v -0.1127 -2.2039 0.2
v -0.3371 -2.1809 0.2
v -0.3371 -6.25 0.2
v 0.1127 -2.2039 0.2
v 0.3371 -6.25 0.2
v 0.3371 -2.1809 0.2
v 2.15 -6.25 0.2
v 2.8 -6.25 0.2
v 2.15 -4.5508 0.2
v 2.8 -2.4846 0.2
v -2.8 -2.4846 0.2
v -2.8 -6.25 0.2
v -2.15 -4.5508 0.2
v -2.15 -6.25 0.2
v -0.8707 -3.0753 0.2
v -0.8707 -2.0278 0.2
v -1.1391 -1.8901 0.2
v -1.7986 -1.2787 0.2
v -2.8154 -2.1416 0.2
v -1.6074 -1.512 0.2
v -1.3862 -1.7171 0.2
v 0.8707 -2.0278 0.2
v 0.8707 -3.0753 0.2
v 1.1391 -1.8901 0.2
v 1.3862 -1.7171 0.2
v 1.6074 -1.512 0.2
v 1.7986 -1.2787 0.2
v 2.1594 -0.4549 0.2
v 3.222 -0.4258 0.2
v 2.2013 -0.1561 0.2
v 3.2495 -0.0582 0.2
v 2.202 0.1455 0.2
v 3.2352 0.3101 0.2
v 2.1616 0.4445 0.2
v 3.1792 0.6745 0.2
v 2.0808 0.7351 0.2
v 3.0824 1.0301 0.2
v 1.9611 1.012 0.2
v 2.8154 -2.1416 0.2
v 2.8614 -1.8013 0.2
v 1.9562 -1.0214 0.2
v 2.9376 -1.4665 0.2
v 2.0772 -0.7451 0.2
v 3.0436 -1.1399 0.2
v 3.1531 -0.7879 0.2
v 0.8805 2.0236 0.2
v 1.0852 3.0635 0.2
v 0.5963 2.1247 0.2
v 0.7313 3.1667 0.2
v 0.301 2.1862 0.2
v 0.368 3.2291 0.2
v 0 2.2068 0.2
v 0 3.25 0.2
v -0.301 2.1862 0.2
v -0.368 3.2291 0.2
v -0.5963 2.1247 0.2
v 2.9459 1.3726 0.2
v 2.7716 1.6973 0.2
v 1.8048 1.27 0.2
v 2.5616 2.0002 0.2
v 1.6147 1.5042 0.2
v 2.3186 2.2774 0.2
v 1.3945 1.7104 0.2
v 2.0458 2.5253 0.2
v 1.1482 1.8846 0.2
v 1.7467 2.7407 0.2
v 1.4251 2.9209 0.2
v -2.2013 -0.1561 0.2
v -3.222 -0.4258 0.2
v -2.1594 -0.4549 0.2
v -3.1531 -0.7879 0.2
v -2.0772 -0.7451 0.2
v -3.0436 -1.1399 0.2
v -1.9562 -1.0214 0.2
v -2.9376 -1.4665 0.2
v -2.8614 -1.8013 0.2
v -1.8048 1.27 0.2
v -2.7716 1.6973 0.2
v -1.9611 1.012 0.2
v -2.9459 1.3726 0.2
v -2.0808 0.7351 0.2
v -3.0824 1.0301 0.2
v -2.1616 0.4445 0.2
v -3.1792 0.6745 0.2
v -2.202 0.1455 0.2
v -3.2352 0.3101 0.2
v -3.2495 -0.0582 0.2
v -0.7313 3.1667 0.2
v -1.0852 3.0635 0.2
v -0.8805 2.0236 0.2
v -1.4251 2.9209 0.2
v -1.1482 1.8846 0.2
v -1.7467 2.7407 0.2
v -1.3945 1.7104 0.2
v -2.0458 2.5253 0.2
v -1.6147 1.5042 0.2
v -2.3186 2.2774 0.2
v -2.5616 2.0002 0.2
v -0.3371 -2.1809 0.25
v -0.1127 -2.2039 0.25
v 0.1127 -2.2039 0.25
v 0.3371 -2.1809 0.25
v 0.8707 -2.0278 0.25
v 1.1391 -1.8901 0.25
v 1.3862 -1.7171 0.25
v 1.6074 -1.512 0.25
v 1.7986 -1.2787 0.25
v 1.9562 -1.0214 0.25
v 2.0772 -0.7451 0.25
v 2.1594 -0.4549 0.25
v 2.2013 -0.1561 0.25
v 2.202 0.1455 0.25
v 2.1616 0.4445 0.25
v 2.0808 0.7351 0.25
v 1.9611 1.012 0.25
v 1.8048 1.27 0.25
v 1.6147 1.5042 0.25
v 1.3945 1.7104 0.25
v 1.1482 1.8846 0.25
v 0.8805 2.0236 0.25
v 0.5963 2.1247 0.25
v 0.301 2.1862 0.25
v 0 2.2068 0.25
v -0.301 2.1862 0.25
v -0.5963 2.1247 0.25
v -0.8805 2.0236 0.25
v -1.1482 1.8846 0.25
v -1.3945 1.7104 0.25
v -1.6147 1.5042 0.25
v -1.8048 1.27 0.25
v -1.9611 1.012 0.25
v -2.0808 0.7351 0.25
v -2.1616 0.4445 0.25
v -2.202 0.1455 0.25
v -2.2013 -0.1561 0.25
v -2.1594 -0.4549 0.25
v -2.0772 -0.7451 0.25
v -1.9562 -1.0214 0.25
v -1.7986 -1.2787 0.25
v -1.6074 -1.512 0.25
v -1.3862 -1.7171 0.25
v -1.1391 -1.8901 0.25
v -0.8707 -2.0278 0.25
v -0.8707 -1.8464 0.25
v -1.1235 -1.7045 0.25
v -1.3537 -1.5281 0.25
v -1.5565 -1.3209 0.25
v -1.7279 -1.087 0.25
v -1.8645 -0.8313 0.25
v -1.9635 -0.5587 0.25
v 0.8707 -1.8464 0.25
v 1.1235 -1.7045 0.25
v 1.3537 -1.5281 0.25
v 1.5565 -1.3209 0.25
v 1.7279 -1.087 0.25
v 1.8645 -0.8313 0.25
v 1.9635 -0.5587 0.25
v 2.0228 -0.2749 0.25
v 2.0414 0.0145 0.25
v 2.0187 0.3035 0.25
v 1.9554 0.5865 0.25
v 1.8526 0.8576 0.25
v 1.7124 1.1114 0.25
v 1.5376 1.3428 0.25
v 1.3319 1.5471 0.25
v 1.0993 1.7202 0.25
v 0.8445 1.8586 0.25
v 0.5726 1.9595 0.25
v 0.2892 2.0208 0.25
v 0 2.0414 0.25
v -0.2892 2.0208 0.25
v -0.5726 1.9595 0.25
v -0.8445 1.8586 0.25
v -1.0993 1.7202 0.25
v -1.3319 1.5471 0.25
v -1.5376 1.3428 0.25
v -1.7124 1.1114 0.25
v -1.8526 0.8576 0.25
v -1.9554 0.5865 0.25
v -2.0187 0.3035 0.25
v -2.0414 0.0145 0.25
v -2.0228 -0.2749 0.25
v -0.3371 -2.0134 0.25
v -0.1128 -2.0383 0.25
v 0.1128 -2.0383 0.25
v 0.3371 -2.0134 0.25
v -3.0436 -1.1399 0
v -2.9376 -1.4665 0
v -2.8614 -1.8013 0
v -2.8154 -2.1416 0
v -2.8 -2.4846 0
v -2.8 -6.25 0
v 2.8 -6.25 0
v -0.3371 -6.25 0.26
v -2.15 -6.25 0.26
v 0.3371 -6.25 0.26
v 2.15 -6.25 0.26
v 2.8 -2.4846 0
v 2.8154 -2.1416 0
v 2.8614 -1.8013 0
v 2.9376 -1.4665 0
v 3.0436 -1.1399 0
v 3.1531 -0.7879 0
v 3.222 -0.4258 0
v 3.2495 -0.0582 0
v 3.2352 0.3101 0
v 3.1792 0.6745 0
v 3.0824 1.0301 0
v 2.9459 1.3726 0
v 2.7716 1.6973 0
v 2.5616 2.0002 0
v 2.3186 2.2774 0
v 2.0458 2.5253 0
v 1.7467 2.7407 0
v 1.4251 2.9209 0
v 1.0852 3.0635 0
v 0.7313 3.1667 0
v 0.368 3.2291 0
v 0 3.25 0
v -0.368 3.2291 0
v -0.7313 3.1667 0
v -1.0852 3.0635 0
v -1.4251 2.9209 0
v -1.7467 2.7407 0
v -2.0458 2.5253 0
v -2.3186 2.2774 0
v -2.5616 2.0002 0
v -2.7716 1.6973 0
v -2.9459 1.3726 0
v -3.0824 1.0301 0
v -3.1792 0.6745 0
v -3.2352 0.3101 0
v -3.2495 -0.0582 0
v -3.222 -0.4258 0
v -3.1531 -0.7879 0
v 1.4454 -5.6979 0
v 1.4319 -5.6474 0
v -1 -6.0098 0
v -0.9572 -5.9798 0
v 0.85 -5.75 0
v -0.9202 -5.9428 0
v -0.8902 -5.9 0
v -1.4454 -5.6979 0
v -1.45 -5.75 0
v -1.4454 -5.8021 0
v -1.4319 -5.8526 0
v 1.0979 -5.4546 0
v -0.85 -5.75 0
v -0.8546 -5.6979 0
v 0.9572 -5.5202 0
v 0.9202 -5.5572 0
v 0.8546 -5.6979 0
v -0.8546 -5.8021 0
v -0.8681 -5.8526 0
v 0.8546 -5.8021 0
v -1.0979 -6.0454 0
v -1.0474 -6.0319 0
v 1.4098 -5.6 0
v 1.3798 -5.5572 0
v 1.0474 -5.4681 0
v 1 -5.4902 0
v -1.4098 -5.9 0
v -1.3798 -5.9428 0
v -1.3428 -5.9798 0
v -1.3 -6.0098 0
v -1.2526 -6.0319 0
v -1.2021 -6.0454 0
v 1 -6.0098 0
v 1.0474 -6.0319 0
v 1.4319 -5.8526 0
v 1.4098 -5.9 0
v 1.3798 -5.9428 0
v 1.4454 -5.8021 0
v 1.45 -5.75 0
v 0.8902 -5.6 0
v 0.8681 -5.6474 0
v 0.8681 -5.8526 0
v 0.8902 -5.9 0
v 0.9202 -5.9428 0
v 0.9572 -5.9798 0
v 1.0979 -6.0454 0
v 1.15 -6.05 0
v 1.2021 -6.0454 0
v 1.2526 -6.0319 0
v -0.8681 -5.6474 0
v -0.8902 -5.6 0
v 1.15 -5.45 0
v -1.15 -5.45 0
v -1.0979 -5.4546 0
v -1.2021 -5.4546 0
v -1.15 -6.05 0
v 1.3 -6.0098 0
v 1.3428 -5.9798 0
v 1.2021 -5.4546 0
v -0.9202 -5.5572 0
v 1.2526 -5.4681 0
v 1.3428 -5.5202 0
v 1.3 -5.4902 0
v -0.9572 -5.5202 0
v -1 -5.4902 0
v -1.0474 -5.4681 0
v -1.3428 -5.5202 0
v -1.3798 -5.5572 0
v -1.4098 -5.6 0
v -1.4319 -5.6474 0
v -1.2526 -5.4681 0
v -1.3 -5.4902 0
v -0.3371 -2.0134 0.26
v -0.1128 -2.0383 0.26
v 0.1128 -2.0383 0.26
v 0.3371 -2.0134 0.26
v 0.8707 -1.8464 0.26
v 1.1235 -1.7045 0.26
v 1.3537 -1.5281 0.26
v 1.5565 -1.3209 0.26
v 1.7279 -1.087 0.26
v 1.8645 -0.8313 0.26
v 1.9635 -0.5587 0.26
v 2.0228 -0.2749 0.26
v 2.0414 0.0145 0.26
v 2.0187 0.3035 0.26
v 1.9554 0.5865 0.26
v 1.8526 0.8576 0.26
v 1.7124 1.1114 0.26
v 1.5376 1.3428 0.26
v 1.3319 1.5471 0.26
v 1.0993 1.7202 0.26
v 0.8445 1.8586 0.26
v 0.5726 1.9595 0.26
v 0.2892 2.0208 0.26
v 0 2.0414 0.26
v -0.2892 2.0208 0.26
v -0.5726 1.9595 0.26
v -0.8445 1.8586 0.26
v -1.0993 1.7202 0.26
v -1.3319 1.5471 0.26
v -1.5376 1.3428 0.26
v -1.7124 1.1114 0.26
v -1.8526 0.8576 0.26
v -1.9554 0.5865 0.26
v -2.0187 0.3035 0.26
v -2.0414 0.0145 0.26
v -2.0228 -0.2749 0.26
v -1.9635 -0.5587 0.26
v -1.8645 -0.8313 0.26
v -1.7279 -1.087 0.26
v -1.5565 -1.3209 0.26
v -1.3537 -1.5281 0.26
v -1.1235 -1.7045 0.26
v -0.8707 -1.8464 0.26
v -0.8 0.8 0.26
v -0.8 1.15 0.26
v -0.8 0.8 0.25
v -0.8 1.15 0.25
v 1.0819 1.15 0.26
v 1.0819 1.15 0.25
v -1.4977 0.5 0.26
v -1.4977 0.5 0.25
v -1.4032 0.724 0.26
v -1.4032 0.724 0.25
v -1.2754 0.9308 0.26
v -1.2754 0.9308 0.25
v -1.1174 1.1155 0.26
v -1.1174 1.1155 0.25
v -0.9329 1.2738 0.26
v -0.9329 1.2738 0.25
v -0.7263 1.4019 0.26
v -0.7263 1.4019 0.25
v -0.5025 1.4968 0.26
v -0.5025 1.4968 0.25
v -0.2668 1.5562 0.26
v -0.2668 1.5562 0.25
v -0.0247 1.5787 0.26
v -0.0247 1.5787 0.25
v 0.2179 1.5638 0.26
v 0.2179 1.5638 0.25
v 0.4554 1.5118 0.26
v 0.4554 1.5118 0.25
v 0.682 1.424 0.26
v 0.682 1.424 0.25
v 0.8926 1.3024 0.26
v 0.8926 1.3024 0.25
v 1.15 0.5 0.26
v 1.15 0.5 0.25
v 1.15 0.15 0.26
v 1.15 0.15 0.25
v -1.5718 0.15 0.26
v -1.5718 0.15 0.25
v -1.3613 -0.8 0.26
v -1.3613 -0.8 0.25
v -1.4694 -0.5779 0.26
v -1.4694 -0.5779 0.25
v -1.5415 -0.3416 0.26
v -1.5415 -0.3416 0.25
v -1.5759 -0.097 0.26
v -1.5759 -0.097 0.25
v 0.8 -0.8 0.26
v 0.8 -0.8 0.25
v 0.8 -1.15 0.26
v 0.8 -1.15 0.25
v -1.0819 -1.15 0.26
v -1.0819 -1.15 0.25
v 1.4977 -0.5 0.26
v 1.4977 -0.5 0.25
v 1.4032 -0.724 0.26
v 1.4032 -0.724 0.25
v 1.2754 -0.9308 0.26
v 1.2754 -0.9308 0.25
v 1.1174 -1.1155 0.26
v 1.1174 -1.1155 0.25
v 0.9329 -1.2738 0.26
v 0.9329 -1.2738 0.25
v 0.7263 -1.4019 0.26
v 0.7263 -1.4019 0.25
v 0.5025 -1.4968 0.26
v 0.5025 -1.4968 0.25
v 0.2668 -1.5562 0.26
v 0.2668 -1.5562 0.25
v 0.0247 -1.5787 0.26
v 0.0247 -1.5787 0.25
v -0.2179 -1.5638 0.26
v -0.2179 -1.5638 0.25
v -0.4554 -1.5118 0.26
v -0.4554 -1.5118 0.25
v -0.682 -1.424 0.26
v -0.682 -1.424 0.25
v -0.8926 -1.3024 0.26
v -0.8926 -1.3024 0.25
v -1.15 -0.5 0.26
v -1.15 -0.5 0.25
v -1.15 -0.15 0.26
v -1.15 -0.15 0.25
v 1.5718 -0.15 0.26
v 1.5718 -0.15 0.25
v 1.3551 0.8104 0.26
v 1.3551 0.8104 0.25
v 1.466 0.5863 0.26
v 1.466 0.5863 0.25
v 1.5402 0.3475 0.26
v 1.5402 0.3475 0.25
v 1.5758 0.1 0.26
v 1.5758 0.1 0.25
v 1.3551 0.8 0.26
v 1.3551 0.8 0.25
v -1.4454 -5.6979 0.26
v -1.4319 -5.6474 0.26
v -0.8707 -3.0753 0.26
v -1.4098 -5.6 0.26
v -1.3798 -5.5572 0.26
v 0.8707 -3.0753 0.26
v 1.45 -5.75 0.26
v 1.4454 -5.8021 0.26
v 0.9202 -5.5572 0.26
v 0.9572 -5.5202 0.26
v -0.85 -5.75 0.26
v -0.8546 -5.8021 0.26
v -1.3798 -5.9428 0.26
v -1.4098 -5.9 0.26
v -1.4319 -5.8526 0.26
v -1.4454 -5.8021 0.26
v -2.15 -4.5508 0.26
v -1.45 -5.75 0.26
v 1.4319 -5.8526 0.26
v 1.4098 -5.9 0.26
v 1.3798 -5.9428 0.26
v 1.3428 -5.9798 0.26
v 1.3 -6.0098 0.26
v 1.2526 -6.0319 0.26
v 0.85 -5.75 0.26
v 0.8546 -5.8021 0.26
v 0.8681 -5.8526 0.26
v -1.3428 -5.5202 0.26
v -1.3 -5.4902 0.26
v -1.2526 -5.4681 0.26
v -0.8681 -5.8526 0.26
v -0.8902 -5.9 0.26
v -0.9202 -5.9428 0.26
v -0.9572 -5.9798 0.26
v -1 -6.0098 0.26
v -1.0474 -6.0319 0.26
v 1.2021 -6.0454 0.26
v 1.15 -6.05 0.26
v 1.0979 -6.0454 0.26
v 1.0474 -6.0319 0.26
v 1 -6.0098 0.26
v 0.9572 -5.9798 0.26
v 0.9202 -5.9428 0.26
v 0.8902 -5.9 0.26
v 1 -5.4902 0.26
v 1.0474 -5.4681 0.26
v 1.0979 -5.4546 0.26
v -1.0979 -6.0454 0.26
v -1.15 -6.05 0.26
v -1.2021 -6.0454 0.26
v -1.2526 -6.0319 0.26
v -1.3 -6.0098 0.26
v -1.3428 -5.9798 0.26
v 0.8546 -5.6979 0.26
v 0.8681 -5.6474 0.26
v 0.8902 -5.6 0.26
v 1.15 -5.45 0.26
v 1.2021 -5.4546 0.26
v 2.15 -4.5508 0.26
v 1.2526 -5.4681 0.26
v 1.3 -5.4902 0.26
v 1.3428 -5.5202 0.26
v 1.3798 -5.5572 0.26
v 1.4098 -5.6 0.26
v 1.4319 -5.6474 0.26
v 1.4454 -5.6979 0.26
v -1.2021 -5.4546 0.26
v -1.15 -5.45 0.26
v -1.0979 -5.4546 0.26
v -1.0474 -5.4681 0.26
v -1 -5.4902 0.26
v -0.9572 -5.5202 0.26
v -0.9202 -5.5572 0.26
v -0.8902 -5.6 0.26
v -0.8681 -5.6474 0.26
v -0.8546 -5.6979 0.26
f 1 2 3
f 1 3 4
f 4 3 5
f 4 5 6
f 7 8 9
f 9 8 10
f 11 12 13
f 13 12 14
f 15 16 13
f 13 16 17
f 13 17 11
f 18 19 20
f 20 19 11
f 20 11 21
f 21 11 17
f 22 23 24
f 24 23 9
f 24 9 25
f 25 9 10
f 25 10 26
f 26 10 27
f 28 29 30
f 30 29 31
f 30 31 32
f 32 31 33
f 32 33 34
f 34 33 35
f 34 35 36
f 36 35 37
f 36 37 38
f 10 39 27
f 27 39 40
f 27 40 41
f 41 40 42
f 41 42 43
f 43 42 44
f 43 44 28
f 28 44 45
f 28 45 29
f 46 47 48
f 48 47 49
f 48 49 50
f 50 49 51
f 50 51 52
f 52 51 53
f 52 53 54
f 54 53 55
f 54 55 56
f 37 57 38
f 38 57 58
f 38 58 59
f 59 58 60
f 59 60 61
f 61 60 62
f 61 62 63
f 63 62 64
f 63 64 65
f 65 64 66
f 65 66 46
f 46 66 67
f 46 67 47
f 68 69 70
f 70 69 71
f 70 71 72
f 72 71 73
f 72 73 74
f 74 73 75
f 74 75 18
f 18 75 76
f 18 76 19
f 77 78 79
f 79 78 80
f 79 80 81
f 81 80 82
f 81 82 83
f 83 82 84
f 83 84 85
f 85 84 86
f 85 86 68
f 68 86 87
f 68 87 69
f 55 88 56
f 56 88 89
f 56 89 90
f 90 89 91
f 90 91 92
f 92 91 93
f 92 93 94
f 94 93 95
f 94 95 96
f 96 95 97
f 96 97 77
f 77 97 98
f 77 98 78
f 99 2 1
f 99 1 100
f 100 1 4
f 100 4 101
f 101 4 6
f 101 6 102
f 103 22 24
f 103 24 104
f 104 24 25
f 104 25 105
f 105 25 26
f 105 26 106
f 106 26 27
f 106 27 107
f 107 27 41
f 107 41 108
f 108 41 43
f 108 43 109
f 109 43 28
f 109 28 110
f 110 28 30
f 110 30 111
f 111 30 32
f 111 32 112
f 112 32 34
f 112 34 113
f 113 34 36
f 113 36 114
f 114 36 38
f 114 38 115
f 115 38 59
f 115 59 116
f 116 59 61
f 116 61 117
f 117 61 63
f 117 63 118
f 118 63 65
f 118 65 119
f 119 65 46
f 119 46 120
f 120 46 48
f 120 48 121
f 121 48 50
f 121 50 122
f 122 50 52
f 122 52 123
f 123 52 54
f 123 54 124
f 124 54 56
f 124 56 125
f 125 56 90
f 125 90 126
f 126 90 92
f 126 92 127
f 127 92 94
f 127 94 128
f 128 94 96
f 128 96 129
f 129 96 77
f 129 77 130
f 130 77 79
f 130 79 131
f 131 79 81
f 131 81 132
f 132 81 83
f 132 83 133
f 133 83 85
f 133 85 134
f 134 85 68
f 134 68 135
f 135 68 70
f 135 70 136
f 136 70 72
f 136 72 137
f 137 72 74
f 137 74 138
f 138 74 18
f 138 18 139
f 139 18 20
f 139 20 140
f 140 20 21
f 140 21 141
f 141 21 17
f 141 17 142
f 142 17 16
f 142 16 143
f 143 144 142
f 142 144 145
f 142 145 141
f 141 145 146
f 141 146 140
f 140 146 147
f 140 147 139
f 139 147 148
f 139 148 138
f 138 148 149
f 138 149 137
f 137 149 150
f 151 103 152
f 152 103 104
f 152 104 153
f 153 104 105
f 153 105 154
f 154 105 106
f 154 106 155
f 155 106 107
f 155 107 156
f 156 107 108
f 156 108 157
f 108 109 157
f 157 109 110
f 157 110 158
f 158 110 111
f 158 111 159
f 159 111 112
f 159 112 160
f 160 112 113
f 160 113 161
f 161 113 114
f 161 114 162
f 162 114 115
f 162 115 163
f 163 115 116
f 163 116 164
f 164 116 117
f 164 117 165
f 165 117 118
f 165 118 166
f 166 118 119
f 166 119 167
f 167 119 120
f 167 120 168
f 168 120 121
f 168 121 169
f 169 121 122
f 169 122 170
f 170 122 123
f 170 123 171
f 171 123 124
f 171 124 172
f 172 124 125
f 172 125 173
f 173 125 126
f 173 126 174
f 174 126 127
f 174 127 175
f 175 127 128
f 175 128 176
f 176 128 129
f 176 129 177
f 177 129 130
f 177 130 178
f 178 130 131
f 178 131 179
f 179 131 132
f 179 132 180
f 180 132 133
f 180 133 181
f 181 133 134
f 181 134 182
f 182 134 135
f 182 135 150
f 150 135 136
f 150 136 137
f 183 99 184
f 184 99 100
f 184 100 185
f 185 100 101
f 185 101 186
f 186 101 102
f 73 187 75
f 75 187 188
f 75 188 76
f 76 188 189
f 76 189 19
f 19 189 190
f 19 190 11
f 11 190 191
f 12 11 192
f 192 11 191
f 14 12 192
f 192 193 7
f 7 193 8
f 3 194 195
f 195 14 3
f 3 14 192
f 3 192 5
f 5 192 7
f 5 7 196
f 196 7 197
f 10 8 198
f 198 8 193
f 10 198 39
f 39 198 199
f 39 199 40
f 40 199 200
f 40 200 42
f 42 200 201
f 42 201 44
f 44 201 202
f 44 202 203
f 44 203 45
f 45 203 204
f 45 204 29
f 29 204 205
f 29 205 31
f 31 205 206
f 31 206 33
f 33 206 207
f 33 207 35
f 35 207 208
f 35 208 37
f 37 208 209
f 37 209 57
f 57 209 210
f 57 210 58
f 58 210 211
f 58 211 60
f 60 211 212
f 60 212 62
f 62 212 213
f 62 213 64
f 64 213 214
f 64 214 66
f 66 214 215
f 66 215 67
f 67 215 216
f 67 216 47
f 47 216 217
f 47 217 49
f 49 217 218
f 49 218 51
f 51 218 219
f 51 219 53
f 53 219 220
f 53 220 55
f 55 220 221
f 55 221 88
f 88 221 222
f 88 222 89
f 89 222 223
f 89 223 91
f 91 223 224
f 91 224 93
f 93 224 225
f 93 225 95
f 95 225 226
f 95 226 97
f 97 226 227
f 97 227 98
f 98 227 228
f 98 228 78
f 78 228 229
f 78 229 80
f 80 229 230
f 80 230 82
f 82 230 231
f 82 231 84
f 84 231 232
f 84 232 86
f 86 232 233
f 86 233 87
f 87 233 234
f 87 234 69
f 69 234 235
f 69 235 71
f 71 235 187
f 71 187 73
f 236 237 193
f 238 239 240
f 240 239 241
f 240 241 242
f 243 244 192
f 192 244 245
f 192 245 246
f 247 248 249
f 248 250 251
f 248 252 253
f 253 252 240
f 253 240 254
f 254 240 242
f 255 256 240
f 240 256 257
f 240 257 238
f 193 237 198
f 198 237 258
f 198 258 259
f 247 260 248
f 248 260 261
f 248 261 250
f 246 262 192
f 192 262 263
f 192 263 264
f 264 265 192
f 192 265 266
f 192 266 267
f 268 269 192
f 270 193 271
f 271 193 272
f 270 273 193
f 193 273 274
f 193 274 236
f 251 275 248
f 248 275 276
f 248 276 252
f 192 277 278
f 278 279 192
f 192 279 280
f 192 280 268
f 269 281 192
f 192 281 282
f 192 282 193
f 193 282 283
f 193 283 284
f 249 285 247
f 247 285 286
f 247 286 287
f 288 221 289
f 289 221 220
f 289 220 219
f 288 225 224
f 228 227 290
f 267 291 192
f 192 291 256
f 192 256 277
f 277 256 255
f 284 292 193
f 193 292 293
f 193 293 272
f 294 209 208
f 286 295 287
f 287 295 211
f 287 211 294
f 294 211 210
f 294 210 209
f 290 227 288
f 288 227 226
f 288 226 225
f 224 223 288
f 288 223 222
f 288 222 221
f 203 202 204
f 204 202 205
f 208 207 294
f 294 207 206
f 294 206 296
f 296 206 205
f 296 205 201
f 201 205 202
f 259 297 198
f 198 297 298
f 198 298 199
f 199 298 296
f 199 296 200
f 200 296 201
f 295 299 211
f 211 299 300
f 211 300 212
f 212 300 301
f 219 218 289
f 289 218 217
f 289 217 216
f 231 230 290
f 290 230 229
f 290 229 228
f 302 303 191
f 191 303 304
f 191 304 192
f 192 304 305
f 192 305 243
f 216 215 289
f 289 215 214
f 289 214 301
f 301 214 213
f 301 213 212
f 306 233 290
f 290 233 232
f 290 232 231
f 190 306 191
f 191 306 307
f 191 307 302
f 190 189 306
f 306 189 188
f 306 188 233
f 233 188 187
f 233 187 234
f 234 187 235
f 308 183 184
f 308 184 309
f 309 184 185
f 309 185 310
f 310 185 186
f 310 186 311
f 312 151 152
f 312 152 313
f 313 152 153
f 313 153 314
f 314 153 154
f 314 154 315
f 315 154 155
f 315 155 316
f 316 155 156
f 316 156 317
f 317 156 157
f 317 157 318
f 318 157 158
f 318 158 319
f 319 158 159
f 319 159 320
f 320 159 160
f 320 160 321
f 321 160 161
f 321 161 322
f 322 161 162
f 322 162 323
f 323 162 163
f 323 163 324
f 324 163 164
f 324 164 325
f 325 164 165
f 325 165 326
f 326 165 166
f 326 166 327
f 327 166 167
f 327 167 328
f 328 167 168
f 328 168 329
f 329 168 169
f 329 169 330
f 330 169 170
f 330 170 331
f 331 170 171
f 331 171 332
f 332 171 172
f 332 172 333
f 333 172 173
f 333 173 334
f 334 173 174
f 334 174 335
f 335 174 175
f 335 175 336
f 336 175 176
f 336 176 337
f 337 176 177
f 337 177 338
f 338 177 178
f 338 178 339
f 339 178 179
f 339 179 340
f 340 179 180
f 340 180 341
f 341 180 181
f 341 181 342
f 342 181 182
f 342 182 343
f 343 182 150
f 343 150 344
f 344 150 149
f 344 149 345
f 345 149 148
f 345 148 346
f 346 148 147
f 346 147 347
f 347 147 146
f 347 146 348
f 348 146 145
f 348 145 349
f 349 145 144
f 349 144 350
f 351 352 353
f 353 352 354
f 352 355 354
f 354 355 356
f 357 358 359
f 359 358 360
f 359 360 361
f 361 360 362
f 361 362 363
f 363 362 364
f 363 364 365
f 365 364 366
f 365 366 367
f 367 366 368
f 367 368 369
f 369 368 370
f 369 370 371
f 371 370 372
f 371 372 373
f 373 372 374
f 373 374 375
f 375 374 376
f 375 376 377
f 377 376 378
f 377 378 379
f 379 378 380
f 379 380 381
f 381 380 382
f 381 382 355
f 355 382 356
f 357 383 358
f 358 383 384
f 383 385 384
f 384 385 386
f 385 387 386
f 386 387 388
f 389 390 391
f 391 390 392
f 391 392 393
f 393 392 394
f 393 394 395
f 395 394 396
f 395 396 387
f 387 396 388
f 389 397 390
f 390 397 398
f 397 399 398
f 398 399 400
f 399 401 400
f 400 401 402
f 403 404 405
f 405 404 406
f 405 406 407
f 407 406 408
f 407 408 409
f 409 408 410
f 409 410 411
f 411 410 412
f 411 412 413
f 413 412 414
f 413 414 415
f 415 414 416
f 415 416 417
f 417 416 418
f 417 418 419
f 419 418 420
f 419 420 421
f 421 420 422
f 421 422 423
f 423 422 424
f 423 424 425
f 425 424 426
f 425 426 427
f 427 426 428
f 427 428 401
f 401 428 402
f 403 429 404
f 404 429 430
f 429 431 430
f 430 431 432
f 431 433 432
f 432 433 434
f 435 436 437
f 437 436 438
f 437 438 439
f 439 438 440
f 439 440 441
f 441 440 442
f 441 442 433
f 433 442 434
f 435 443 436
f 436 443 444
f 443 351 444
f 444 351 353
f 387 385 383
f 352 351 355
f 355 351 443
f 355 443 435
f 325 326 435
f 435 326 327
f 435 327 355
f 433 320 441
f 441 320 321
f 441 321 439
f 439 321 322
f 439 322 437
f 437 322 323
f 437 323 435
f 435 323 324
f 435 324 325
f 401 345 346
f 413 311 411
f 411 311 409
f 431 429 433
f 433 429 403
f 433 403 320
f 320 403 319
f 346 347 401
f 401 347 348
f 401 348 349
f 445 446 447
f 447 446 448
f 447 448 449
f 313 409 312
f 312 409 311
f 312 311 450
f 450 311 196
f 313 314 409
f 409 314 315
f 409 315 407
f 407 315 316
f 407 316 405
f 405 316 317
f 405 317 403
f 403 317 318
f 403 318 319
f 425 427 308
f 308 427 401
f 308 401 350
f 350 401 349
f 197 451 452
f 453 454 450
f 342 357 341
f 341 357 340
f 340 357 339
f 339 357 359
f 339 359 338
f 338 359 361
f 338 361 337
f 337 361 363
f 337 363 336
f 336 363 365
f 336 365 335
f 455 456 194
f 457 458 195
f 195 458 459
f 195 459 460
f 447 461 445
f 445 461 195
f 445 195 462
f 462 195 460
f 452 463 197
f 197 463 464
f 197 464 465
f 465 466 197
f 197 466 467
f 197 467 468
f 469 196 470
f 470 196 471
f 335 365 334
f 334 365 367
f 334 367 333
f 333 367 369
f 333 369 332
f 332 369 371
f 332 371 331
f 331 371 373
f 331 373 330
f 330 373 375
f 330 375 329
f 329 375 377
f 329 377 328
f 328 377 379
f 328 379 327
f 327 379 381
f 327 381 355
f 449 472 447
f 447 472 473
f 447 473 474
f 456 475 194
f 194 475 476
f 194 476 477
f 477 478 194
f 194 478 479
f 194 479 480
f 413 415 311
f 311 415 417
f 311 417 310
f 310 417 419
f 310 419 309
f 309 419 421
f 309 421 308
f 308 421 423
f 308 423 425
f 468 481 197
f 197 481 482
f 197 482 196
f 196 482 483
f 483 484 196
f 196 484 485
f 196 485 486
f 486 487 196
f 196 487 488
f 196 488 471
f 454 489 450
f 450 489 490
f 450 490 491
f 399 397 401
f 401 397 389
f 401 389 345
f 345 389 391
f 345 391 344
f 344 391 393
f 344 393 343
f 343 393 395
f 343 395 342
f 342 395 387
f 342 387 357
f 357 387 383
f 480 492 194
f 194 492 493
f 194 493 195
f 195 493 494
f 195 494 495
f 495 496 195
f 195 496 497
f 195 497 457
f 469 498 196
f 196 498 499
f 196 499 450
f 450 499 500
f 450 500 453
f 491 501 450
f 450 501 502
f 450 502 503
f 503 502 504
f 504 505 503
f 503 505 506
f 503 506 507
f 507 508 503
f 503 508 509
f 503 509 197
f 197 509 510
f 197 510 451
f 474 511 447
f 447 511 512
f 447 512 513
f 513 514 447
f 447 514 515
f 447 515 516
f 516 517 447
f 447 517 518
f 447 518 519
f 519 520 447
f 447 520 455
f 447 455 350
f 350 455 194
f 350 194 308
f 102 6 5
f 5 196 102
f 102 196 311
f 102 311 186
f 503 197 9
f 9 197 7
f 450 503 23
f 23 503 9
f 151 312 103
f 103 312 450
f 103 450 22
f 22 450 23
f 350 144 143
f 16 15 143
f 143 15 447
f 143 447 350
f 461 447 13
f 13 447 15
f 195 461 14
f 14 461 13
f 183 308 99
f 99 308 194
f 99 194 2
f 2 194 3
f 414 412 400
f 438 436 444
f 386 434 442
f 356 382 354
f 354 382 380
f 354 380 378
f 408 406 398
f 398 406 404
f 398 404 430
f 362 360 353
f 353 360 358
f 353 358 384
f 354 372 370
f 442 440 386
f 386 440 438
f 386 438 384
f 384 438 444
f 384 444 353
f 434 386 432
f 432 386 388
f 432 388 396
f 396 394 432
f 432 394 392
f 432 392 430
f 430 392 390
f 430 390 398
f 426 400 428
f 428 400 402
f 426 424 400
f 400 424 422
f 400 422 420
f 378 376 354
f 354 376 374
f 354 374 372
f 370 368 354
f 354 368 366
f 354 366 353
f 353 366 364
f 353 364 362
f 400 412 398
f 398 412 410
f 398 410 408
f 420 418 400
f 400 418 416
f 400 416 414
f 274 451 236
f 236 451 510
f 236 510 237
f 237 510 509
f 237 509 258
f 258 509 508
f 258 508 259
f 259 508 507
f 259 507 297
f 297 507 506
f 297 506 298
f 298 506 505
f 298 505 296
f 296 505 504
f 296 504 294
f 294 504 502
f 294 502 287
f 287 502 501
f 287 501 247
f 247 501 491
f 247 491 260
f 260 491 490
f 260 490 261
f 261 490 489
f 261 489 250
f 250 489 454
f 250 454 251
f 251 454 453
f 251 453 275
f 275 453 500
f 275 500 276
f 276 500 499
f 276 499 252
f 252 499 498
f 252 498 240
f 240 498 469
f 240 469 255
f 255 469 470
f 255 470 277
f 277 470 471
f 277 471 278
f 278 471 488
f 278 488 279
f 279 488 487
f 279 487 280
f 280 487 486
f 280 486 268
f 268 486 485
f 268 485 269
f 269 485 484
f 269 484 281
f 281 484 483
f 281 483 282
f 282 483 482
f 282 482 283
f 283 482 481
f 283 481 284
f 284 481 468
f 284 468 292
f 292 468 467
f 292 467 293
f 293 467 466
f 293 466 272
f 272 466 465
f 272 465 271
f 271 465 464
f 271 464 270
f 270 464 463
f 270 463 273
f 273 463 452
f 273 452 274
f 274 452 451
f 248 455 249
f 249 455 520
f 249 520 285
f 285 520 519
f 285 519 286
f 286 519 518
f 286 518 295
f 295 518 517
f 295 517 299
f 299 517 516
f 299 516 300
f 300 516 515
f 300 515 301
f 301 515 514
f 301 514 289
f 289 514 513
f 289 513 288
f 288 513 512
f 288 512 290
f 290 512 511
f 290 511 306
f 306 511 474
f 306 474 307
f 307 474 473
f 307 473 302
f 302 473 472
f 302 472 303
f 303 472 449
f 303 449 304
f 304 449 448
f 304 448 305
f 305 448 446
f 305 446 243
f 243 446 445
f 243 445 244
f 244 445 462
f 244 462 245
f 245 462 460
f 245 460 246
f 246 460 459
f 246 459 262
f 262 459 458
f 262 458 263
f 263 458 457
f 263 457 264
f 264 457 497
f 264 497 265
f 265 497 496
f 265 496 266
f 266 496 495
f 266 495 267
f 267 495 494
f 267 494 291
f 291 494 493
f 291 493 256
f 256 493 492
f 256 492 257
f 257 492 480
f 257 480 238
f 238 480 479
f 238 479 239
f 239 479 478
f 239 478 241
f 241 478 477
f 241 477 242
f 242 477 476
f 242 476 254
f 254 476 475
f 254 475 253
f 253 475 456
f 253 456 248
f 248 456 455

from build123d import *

# Parameters (mm, degrees)
BOSS_EXTRUDE1_DEPTH = 0.2
SKETCH2_R           = 2.206807536
BOSS_EXTRUDE2_DEPTH = 0.25
BOSS_EXTRUDE3_DEPTH = 0.06
SKETCH5_R           = 0.3
CUT_EXTRUDE1_DEPTH  = 1.26


with BuildPart() as part:
    # Sketch1 → Boss-Extrude1 (new body)
    with BuildSketch(Plane.XY):
        with BuildLine():
            Line((-2.8, -6.25), (2.8, -6.25))
            Line((2.8, -6.25), (2.8, -2.484625193))
            ThreePointArc((2.8, -2.484625193), (2.861380635, -1.801298833), (3.043557337, -1.139850312))
            ThreePointArc((3.043557337, -1.139850312), (0, 3.25), (-3.043557337, -1.139850312))
            ThreePointArc((-3.043557337, -1.139850312), (-2.861380635, -1.801298833), (-2.8, -2.484625193))
            Line((-2.8, -2.484625193), (-2.8, -6.25))
        make_face()
    extrude(amount=BOSS_EXTRUDE1_DEPTH)

    # Sketch2 → Boss-Extrude2 (add)
    with BuildSketch(Plane(origin=(0, 0, 0), x_dir=(-1, 0, 0), z_dir=(0, 0, -1))):
        Circle(SKETCH2_R)
    extrude(amount=-BOSS_EXTRUDE2_DEPTH)

    # Sketch3 → Boss-Extrude3 (add)
    with BuildSketch(Plane.XY.offset(0.2)):
        with BuildLine():
            Line((0.870696458, -1.846445486), (0.870696458, -3.07534158))
            Line((0.870696458, -3.07534158), (2.15, -4.550780247))
            Line((2.15, -4.550780247), (2.15, -6.25))
            Line((2.15, -6.25), (0.337052097, -6.25))
            Line((0.337052097, -6.25), (0.337052097, -2.013422245))
            ThreePointArc((0.337052097, -2.013422245), (0, -2.041439016), (-0.337052097, -2.013422245))
            Line((-0.337052097, -2.013422245), (-0.337052097, -6.25))
            Line((-0.337052097, -6.25), (-2.15, -6.25))
            Line((-2.15, -6.25), (-2.15, -4.550780247))
            Line((-2.15, -4.550780247), (-0.870696458, -3.07534158))
            Line((-0.870696458, -3.07534158), (-0.870696458, -1.846445486))
            ThreePointArc((-0.870696458, -1.846445486), (0, 2.041439016), (0.870696458, -1.846445486))
        make_face()
        with BuildLine():
            Line((-0.8, 1.15), (1.081903016, 1.15))
            ThreePointArc((1.081903016, 1.15), (-0.385798466, 1.531069456), (-1.497669568, 0.5))
            Line((-1.497669568, 0.5), (1.15, 0.5))
            Line((1.15, 0.5), (1.15, 0.15))
            Line((1.15, 0.15), (-1.571786925, 0.15))
            ThreePointArc((-1.571786925, 0.15), (-1.54152787, -0.341622545), (-1.361254618, -0.8))
            Line((-1.361254618, -0.8), (0.8, -0.8))
            Line((0.8, -0.8), (0.8, -1.15))
            Line((0.8, -1.15), (-1.081903016, -1.15))
            ThreePointArc((-1.081903016, -1.15), (0.385798466, -1.531069456), (1.497669568, -0.5))
            Line((1.497669568, -0.5), (-1.15, -0.5))
            Line((-1.15, -0.5), (-1.15, -0.15))
            Line((-1.15, -0.15), (1.571786925, -0.15))
            ThreePointArc((1.571786925, -0.15), (1.540204935, 0.347538335), (1.355071738, 0.810428727))
            Line((1.355071738, 0.810428727), (1.355071738, 0.8))
            Line((1.355071738, 0.8), (-0.8, 0.8))
            Line((-0.8, 0.8), (-0.8, 1.15))
        make_face(mode=Mode.SUBTRACT)
    extrude(amount=BOSS_EXTRUDE3_DEPTH)

    # Sketch5 → Cut-Extrude1 (cut, through all)
    with BuildSketch(Plane.XY.offset(0.26)):
        with Locations((-1.15, -5.75)):
            Circle(SKETCH5_R)
        with Locations((1.15, -5.75)):
            Circle(SKETCH5_R)
    extrude(amount=-CUT_EXTRUDE1_DEPTH, mode=Mode.SUBTRACT)


solid = part.part
